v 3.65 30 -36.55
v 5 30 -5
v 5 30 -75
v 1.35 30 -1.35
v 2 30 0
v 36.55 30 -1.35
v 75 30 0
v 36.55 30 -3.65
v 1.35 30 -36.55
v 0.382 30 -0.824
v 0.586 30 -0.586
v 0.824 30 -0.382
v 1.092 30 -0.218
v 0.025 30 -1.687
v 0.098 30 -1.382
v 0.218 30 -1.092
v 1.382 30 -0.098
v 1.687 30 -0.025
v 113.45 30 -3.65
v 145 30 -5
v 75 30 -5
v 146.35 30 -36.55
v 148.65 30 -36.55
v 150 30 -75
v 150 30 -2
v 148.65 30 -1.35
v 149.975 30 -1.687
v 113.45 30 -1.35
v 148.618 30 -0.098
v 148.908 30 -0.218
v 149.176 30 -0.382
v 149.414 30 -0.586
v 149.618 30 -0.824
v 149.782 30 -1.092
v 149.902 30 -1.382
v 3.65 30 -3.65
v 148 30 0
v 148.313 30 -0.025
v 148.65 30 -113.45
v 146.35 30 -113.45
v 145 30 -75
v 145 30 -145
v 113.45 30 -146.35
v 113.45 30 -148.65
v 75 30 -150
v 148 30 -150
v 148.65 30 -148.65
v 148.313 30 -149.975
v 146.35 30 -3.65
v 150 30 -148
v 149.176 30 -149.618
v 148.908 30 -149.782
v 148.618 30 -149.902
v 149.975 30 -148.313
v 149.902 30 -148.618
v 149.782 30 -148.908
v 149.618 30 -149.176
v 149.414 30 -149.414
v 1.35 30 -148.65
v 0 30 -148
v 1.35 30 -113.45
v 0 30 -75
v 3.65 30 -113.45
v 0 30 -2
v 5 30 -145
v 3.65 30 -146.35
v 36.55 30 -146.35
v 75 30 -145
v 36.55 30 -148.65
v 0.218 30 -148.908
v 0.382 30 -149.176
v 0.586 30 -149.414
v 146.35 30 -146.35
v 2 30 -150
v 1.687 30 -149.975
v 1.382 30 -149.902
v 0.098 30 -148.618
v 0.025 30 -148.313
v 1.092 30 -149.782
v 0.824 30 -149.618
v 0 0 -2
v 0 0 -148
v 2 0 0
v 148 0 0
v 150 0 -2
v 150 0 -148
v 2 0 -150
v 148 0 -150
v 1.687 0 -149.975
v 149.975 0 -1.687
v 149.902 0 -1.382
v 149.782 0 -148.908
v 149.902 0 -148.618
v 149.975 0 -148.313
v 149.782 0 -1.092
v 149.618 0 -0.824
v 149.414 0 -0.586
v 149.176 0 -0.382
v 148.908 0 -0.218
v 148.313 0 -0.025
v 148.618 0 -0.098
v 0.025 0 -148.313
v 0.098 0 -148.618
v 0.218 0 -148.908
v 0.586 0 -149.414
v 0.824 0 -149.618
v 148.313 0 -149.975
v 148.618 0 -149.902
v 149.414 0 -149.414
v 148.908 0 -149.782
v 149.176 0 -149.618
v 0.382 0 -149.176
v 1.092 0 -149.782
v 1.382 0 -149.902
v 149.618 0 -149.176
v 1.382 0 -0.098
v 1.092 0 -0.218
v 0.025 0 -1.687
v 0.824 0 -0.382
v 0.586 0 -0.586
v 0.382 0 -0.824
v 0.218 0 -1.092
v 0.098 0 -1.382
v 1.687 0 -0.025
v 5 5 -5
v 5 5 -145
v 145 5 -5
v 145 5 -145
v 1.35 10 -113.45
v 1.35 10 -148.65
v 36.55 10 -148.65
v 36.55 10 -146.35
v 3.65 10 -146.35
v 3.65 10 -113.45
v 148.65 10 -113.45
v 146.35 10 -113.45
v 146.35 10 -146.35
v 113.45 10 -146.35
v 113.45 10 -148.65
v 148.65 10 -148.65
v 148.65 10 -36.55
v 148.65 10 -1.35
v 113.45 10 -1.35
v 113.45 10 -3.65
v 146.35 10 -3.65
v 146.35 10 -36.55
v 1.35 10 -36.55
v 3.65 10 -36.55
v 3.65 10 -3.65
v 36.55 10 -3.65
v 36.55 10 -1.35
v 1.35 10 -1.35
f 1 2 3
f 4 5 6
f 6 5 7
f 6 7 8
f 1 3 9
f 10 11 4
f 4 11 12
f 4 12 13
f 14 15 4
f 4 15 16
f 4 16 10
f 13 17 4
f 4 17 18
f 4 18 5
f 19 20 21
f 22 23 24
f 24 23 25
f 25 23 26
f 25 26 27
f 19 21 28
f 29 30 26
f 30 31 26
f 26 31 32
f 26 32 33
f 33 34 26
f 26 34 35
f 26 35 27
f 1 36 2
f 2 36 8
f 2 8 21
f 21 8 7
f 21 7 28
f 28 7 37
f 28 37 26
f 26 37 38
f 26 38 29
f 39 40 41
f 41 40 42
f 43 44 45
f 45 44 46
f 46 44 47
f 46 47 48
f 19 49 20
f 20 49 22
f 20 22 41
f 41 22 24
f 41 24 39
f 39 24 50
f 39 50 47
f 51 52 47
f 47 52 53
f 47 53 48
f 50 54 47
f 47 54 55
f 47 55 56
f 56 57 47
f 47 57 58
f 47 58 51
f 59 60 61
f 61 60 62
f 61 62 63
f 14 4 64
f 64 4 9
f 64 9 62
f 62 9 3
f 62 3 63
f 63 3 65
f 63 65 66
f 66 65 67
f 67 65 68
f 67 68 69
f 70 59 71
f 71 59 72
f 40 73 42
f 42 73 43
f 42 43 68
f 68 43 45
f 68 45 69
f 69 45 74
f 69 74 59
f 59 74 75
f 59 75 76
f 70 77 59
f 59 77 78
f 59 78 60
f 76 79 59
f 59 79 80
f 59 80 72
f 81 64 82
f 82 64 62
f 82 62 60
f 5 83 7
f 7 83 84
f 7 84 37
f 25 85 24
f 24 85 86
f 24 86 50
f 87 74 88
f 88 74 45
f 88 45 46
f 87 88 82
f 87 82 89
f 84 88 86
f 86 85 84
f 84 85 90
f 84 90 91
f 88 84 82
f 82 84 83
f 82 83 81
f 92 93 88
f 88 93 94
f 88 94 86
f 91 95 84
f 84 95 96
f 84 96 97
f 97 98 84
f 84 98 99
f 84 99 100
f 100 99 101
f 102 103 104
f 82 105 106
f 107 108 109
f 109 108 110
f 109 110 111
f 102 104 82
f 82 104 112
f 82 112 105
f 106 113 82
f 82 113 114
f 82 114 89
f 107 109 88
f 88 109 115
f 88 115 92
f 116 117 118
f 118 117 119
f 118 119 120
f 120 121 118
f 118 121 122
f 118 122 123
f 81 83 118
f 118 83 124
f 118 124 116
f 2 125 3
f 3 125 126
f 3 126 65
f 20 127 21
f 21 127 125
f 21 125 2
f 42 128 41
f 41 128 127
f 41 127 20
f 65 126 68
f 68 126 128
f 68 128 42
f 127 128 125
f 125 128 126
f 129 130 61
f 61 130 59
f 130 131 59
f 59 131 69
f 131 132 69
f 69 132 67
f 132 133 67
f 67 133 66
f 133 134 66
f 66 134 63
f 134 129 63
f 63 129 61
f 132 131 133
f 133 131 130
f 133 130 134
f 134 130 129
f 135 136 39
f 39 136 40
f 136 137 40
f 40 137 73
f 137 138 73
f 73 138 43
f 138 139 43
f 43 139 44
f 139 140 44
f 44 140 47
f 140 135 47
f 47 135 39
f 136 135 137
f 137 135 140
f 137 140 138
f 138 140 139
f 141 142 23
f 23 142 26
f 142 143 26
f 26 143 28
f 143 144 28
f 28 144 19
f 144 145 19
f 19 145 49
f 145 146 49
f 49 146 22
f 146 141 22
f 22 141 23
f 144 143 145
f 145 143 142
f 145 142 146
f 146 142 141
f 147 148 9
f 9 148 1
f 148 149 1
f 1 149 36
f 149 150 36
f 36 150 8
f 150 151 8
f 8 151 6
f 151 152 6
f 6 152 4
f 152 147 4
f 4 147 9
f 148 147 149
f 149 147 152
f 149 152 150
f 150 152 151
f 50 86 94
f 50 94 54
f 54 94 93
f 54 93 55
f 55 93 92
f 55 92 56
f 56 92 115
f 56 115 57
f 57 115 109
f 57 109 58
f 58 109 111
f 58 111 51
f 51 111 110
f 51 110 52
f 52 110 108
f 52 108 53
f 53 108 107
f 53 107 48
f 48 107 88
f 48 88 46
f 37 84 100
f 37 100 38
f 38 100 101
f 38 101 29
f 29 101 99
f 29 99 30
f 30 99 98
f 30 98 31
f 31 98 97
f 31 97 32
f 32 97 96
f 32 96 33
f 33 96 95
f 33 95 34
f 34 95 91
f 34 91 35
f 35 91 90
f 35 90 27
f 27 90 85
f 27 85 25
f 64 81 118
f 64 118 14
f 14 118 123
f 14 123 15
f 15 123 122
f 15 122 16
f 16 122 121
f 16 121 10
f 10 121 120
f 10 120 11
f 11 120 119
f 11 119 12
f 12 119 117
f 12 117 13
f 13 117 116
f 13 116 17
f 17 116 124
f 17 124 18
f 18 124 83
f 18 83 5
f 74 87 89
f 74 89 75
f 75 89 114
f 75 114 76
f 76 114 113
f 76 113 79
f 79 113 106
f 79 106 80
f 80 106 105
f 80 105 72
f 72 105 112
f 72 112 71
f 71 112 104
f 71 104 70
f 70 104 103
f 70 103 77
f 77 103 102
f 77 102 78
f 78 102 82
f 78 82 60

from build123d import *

# Parameters (mm, degrees)
SKETCH3_W           = 150
SKETCH3_H           = 150
BOSS_EXTRUDE1_DEPTH = 30
SHELL1_T            = -5
CUT_EXTRUDE1_DEPTH  = 20
FILLET2_R           = 2


with BuildPart() as part:
    # Sketch3 → Boss-Extrude1 (new body)
    with BuildSketch(Plane(origin=(0, 0, 0), x_dir=(1, 0, 0), z_dir=(0, 1, 0))):
        with Locations((75, 75)):
            Rectangle(SKETCH3_W, SKETCH3_H)
    extrude(amount=BOSS_EXTRUDE1_DEPTH)

    # Shell1
    shell1_openings = [part.faces().sort_by_distance(p)[0] for p in [
        (75, 30, -75),
    ]]
    offset(amount=SHELL1_T, openings=shell1_openings, kind=Kind.INTERSECTION)

    # Sketch5 → Cut-Extrude1 (cut)
    with BuildSketch(Plane(origin=(0, 30, 0), x_dir=(1, 0, 0), z_dir=(0, 1, 0))):
        Polygon((1.35, 148.65), (36.55, 148.65), (36.55, 146.35), (3.65, 146.35), (3.65, 113.45), (1.35, 113.45), align=None)
        Polygon((148.65, 113.45), (148.65, 148.65), (113.45, 148.65), (113.45, 146.35), (146.35, 146.35), (146.35, 113.45), align=None)
        Polygon((148.65, 1.35), (113.45, 1.35), (113.45, 3.65), (146.35, 3.65), (146.35, 36.55), (148.65, 36.55), align=None)
        Polygon((1.35, 36.55), (1.35, 1.35), (36.55, 1.35), (36.55, 3.65), (3.65, 3.65), (3.65, 36.55), align=None)
    extrude(amount=-CUT_EXTRUDE1_DEPTH, mode=Mode.SUBTRACT)

    # Fillet2
    fillet2_edges = [part.edges().sort_by_distance(p)[0] for p in [
        (0, 15, -150),
        (150, 15, -150),
        (150, 15, 0),
        (0, 15, 0),
    ]]
    fillet(fillet2_edges, radius=FILLET2_R)


solid = part.part
